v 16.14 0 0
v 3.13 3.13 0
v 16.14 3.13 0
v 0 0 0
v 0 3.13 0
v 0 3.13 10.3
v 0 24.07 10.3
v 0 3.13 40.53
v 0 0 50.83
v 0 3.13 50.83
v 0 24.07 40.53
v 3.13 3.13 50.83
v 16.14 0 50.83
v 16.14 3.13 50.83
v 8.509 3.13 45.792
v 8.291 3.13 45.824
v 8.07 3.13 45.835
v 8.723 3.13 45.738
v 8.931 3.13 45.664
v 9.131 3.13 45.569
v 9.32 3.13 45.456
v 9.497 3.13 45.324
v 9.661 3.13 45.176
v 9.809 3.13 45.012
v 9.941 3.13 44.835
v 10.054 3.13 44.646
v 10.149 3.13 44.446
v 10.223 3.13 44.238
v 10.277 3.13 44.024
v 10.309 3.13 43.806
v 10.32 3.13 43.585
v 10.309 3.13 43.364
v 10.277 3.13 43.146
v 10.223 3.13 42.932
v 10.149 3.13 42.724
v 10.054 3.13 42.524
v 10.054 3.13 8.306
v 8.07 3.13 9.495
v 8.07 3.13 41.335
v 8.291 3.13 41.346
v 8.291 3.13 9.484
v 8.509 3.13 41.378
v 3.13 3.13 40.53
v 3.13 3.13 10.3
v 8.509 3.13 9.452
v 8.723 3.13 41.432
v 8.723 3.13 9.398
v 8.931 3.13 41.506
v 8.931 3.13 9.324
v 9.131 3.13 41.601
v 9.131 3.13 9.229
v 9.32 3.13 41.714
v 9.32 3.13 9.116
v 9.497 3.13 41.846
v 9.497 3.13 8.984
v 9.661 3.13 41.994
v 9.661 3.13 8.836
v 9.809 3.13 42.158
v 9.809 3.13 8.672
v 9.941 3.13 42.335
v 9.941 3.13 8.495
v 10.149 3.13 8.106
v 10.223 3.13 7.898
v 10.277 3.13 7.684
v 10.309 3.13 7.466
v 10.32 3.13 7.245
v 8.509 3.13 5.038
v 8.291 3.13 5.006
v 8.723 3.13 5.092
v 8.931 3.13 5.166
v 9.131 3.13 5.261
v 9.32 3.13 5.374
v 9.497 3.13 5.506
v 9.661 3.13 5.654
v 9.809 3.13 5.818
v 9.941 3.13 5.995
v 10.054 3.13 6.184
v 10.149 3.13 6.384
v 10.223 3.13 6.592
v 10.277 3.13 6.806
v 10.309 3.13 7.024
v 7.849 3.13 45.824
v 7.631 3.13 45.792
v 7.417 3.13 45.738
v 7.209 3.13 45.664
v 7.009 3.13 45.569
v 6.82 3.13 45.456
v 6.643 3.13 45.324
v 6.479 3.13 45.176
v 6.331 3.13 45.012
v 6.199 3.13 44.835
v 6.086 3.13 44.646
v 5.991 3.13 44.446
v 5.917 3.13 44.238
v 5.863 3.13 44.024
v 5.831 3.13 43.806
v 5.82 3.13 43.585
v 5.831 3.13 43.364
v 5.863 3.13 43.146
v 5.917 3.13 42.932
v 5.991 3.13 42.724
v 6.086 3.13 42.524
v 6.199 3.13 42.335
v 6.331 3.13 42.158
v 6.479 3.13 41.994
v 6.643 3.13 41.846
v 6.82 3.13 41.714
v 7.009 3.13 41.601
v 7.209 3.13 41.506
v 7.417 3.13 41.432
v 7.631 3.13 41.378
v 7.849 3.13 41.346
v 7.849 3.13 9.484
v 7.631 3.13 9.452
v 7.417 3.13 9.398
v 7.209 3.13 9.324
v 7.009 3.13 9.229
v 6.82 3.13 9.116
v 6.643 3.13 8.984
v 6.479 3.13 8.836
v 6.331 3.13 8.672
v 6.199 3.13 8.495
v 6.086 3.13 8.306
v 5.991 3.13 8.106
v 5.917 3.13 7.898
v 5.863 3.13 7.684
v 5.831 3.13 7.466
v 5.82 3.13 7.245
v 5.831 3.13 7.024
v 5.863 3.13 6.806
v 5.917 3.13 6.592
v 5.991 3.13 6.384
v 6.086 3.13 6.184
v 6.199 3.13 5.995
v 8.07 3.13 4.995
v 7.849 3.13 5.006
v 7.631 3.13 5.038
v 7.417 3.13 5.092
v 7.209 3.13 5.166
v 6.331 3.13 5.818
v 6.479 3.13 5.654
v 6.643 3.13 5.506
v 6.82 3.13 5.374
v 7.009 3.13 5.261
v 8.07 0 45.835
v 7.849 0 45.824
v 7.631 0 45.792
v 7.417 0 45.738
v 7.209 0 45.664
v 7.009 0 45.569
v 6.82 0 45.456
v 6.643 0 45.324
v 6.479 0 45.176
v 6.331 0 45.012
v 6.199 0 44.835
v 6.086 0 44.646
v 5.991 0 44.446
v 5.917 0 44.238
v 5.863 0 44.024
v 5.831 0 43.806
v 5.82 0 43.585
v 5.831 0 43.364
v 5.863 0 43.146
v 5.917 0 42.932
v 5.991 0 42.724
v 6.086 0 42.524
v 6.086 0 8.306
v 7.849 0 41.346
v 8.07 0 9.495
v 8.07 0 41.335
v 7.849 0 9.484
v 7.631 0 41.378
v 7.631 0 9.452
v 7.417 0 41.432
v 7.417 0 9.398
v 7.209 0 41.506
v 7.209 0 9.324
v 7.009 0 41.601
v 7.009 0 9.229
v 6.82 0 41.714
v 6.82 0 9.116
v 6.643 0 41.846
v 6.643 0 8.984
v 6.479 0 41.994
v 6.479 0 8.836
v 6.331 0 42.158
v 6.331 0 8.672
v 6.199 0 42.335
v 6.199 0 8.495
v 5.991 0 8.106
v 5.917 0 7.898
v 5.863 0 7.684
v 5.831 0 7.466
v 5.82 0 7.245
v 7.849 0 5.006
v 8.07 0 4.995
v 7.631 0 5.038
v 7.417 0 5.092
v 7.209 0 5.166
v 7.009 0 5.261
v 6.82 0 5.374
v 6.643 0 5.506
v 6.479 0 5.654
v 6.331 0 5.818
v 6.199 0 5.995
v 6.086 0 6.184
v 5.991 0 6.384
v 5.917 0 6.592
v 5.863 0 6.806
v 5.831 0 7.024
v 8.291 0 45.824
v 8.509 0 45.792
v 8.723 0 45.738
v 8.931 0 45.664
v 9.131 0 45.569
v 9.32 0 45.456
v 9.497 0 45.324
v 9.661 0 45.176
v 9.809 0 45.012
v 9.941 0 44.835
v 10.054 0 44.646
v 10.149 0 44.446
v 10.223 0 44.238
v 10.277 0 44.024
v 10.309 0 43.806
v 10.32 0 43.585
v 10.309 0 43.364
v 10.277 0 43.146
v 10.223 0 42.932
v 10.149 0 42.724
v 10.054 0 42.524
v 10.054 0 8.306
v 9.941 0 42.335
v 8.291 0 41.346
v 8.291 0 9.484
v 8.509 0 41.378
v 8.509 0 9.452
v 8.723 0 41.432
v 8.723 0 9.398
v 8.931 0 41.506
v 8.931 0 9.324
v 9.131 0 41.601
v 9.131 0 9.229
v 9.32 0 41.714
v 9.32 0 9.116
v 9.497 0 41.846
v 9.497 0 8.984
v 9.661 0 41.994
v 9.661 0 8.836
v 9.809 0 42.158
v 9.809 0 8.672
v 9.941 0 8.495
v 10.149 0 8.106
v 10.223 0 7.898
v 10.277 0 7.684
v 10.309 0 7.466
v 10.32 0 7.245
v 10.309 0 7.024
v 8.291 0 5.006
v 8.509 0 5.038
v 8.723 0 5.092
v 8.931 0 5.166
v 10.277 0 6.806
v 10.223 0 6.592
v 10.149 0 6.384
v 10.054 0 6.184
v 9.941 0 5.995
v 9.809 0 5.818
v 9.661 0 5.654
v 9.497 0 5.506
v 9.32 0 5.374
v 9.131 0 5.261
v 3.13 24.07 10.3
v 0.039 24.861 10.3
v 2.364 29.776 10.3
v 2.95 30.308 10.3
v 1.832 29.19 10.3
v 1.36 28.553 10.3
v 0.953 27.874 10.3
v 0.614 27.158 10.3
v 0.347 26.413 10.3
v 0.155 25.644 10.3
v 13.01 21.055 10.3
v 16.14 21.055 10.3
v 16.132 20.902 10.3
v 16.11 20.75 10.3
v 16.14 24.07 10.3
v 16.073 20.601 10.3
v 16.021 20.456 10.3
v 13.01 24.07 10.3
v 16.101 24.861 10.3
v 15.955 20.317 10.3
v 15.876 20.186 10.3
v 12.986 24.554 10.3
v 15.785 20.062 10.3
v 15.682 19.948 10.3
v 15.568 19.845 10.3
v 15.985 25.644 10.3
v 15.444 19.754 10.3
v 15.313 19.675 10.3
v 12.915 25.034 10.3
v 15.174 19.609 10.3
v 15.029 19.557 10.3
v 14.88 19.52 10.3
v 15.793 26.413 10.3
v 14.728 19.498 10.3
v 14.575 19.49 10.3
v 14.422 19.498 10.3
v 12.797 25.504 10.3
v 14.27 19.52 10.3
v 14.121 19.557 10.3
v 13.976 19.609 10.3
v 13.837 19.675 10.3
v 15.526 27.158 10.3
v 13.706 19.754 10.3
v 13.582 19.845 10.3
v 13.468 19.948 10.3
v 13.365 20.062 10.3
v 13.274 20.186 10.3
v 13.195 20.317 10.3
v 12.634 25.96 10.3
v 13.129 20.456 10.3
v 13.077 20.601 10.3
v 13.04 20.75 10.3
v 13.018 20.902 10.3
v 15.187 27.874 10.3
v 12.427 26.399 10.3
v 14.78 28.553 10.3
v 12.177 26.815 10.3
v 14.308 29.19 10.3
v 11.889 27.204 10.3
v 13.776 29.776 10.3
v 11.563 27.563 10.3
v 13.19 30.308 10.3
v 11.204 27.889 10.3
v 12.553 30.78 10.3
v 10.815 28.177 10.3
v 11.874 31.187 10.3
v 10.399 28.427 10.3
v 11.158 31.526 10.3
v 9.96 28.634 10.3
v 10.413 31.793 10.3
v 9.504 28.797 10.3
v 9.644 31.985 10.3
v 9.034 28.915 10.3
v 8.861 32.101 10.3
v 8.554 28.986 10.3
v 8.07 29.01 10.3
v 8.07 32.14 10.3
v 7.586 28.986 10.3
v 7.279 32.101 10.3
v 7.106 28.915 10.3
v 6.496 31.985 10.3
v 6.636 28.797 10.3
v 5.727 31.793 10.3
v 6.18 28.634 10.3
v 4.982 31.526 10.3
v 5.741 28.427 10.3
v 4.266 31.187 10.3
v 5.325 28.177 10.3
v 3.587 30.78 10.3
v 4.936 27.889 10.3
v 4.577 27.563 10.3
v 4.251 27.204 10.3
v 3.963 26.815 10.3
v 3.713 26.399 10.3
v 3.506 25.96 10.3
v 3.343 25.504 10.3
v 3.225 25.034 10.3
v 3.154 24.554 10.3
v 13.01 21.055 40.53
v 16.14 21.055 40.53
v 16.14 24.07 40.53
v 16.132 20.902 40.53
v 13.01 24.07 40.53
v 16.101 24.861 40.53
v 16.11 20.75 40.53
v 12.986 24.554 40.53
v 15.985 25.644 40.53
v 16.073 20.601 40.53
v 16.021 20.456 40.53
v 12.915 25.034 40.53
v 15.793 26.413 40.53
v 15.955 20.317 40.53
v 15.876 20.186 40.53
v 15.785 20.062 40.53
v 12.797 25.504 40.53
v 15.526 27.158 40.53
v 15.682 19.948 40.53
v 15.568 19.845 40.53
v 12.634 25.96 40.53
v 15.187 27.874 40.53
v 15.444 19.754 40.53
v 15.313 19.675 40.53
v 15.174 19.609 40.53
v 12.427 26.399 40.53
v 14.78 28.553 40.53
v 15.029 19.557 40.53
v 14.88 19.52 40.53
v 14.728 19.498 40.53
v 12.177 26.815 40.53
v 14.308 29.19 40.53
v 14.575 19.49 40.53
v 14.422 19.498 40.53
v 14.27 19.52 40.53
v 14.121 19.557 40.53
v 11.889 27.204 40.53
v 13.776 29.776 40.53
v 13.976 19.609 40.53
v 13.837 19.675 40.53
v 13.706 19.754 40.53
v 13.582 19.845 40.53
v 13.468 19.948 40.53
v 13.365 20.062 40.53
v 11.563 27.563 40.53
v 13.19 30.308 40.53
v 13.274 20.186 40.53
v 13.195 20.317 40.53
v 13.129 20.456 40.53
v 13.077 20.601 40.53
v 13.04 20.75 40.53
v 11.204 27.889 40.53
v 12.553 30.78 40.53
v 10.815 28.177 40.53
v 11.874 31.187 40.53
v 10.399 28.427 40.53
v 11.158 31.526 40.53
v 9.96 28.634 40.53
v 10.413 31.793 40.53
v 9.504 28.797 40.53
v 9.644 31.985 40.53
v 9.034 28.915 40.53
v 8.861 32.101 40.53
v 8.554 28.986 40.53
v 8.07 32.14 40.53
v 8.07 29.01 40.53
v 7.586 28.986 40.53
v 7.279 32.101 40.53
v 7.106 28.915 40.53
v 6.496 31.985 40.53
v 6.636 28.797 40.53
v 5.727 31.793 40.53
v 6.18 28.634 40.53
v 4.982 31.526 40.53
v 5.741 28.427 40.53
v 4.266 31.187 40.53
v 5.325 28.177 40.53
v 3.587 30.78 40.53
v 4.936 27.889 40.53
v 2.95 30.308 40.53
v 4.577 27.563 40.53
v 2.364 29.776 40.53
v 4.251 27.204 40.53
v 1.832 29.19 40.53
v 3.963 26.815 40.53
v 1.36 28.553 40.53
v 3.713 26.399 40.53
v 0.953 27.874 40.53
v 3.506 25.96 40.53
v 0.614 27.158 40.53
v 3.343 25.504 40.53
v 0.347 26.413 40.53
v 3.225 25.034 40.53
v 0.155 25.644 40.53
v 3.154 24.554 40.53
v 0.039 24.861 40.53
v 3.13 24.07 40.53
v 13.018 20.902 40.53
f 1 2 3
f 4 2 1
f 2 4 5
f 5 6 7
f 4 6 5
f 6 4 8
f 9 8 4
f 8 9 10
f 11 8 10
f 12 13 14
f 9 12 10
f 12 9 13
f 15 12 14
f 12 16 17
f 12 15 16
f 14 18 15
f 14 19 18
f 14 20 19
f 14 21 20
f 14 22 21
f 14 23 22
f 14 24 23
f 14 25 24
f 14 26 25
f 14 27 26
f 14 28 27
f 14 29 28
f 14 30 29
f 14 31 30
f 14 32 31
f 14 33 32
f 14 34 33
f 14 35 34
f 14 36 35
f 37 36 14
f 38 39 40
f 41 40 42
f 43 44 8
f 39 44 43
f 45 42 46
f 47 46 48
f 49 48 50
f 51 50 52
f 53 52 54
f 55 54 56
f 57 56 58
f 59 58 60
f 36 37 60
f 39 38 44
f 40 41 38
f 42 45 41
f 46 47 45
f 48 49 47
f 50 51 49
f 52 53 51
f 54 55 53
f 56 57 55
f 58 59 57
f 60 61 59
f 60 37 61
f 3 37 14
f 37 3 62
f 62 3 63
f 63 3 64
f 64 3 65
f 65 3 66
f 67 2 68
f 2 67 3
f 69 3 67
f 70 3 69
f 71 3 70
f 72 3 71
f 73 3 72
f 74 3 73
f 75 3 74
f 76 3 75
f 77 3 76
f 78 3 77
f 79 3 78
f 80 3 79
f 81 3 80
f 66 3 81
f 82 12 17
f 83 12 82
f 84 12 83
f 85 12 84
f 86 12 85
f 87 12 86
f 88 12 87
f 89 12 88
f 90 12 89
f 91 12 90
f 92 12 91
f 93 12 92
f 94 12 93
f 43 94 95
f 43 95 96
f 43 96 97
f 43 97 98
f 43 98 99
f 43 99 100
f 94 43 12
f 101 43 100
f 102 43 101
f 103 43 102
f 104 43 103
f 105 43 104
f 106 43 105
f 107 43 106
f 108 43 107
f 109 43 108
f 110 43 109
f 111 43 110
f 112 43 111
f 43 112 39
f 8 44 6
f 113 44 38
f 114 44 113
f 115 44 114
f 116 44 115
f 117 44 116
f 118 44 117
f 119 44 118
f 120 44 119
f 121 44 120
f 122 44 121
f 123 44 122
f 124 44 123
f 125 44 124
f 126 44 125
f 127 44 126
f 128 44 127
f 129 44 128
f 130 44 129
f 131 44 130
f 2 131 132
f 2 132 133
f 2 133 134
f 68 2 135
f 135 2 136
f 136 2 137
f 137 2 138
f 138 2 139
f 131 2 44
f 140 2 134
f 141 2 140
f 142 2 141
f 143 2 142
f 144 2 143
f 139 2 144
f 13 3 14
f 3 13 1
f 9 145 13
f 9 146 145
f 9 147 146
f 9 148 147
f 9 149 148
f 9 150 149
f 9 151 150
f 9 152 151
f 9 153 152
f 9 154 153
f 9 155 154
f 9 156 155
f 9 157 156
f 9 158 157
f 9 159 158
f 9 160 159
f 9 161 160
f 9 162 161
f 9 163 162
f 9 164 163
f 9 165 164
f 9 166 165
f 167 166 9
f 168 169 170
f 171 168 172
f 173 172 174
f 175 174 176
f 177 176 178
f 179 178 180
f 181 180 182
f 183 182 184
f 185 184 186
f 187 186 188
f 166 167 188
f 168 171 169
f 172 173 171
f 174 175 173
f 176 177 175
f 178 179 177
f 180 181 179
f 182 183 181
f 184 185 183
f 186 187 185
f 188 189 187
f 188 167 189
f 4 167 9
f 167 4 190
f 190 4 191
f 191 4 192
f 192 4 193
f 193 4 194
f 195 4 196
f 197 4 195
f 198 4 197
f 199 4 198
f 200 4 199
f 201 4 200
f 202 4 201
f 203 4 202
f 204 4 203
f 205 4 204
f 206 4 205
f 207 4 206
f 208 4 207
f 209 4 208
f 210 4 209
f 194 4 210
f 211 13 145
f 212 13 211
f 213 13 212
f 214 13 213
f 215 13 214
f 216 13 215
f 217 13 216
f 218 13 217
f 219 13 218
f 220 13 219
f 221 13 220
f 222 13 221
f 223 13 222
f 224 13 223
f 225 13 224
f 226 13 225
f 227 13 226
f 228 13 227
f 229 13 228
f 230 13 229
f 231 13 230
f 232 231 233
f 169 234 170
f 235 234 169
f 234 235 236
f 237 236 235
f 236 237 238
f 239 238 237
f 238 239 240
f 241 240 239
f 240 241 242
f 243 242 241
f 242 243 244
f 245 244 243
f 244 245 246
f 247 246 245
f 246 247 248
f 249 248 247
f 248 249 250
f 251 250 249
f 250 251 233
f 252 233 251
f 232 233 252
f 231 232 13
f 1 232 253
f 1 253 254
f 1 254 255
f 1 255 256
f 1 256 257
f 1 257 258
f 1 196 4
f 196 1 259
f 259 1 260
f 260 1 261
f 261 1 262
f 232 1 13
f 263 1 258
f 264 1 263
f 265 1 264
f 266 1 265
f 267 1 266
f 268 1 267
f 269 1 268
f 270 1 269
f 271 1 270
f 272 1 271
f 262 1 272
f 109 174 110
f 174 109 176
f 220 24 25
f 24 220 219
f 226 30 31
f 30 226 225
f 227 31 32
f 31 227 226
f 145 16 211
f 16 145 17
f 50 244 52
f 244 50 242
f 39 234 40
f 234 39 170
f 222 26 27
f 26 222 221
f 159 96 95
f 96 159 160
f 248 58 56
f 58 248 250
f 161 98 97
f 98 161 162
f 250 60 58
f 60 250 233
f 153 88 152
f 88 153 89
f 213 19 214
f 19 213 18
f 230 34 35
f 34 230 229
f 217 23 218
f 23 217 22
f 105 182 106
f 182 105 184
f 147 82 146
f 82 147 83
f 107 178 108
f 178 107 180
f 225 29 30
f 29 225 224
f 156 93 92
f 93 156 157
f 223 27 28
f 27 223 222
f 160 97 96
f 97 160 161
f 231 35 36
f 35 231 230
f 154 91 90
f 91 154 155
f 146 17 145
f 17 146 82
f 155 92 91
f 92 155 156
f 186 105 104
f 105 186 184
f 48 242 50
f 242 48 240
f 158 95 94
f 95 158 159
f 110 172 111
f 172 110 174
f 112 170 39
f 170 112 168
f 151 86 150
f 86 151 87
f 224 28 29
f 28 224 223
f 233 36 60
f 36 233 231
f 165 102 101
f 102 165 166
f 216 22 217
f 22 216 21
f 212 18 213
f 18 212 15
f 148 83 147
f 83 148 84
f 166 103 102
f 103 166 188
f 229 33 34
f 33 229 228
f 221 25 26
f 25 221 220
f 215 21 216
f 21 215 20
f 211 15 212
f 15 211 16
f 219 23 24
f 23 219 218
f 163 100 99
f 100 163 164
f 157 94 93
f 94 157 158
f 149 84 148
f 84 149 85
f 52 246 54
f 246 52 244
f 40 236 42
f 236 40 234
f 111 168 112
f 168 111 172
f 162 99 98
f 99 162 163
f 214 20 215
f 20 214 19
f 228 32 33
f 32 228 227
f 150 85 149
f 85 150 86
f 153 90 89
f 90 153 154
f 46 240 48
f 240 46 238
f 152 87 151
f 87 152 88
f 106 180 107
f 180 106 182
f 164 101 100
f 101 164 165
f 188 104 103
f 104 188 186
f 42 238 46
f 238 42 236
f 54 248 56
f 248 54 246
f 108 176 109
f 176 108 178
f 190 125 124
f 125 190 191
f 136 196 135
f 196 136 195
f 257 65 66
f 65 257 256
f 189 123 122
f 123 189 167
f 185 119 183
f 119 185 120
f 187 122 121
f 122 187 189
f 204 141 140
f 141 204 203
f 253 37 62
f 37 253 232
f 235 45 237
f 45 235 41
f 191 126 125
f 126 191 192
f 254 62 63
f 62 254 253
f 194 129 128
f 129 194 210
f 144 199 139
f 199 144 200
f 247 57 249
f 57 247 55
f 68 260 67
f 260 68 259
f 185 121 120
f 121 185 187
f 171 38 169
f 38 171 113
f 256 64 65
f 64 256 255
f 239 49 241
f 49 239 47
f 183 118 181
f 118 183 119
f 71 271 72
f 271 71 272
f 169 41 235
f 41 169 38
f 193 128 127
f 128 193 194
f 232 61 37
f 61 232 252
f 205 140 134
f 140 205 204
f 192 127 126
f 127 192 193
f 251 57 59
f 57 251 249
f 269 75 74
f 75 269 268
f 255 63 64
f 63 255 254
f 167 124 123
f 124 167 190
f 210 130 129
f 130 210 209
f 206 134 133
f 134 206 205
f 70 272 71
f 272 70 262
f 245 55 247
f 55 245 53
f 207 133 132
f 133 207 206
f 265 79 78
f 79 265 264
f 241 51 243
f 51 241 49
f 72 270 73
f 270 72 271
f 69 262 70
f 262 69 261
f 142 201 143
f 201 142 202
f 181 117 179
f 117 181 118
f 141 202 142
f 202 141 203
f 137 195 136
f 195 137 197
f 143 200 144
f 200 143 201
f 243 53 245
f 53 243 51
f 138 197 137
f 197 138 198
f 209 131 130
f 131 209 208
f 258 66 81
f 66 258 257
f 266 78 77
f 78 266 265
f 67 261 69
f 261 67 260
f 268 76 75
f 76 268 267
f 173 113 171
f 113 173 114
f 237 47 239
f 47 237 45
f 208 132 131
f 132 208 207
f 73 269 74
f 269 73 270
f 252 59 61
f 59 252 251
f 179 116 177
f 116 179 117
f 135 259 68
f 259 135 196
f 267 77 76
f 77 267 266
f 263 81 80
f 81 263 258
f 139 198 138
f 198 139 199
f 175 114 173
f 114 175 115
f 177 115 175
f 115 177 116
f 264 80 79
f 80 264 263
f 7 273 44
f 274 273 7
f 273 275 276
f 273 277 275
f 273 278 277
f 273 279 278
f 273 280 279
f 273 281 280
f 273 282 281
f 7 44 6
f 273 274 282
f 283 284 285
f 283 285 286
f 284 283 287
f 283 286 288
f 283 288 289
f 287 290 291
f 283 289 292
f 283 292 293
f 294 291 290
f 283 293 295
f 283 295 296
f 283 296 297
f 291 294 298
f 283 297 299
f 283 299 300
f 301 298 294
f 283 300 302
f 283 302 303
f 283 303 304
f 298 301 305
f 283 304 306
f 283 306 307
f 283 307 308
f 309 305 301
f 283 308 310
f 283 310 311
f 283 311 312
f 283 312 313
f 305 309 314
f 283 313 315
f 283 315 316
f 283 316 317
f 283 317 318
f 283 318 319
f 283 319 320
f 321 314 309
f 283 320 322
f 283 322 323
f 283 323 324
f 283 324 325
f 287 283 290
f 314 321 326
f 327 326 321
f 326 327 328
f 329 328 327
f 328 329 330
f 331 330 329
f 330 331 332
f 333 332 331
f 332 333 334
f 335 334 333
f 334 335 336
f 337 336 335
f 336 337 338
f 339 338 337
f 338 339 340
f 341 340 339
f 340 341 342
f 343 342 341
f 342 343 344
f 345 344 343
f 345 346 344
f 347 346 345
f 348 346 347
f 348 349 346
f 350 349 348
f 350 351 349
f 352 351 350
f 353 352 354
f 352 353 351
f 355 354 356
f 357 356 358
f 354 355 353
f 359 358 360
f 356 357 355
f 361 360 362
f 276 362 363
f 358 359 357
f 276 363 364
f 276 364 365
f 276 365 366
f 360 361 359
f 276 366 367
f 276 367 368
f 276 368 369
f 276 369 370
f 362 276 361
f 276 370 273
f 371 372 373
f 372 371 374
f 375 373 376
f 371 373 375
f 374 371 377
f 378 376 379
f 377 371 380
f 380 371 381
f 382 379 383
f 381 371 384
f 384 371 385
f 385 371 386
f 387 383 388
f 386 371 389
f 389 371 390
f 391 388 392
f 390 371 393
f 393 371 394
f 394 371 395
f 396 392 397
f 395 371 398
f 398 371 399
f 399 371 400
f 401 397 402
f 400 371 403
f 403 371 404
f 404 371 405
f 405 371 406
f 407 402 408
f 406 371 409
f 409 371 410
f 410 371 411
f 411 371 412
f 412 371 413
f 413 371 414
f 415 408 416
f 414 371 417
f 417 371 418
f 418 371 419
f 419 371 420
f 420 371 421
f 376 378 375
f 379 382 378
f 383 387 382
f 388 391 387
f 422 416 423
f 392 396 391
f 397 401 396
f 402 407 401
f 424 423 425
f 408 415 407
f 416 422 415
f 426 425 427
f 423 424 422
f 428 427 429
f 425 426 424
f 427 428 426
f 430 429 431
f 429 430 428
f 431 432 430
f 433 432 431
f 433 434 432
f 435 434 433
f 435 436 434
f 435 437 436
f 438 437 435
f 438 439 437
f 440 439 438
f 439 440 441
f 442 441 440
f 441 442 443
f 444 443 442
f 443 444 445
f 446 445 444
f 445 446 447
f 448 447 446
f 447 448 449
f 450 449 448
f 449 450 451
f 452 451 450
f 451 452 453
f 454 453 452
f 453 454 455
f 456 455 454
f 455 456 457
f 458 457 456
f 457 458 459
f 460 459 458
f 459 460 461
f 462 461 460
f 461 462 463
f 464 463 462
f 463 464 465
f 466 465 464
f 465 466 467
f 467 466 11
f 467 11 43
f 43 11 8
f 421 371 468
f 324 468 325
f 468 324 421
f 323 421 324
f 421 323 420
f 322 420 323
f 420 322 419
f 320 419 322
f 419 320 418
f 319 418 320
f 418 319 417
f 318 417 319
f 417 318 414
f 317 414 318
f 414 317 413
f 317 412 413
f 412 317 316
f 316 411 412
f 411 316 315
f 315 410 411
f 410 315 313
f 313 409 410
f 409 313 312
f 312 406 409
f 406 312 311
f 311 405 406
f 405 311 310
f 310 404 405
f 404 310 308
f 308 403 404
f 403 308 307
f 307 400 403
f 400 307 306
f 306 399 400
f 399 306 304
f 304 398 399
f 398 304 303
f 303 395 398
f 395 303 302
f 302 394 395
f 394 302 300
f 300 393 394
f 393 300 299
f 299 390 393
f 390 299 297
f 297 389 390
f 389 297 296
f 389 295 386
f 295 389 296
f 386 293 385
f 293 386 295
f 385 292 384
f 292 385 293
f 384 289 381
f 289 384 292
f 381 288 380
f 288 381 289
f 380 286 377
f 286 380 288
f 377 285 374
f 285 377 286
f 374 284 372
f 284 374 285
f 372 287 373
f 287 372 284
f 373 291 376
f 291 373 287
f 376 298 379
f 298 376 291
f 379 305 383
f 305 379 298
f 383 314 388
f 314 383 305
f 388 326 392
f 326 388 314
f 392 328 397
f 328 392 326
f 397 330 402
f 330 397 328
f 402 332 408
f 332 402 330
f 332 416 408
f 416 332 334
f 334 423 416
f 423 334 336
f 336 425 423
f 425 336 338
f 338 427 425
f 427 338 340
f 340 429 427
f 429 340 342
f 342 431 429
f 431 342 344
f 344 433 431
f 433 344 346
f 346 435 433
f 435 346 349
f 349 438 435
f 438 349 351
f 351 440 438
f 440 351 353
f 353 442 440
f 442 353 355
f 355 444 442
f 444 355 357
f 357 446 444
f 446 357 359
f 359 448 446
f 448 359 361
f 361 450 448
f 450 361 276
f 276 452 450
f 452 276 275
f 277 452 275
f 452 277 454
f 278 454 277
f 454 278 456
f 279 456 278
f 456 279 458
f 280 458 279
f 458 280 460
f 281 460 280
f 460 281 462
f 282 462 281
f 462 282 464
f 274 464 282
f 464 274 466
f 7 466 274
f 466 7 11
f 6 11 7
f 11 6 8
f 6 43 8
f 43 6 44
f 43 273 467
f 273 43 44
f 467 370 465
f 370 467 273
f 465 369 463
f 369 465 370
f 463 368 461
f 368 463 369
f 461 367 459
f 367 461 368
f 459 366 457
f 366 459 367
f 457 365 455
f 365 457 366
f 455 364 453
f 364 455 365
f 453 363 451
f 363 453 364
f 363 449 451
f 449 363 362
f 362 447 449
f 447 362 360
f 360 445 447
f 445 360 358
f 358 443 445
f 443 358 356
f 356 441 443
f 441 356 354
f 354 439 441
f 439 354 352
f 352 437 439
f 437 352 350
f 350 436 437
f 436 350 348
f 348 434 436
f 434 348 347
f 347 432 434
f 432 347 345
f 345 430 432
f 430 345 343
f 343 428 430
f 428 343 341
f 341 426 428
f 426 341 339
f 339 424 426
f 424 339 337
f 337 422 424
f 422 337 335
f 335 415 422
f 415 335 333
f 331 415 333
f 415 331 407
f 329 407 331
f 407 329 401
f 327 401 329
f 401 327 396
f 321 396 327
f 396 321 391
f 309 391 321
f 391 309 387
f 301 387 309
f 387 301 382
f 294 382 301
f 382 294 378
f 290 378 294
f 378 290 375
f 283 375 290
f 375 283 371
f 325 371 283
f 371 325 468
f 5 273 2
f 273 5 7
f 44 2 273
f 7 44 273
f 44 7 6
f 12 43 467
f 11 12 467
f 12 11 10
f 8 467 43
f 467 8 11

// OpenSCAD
$height = 50.83;
$insertion_gap = 16.36;
$hook_diameter = 9.88;
$hook_depth = 14.46; // diameter + extra_hook
$hook_height = 30.23;
$end_to_end = 35.79; // from the wall to the top of the hook
$screw_spacing = 31.84; // closest edge-to-edge, not center-to-center
$screw_diameter = 4.5;

$thickness = 3.13;

// Render quality
$fn = $preview ? 32 : 64;

$epsilon = 0.01;


// anchored at 0,0,0; hook in the positive XY direction; linear_extrude in the Z direction
module hook_and_stem(
    height = 100,
    radius = 10,
    thickness = 1,
    extra_hook = 15,
    extra_stem = 30
) {
    translate([radius+thickness, extra_stem+extra_hook, 0])
    linear_extrude(height)
    union() {
        // hook
        difference() {
            circle(r=radius + thickness);
            circle(r=radius);
            translate([0, -(radius+thickness), 0])
            square(2*(radius+thickness), center=true);
        };
        
        // extra_hook without rounding
        translate([
            (radius+thickness/2),
            -((extra_hook-thickness/2)/2),
            0
        ])
        square([thickness, extra_hook-thickness/2], center=true);
        
        // extra_hook rounding
        translate([
            (radius+thickness/2),
            -((extra_hook-thickness/2)),
            0
        ])
        circle(d=thickness);
        
        // extra_hook on stem
        translate([
            -(radius+thickness/2),
            -(extra_hook/2),
            0
        ])
        square([thickness, extra_hook], center=true);
        
        // stem
        translate([
            -(radius+thickness/2),
            -(extra_stem/2+extra_hook),
            0
        ])
        square([thickness, extra_stem], center=true);
    }
}

module screwplate (
    thickness,
    height,
    hole_radius,
    hole_separation,
    hook_size
) {
    difference() {
        linear_extrude(height)
        square([hook_size, thickness]);
        
        // screw holes
        translate([hook_size/2, -$epsilon, height/2 + hole_separation/2])
        rotate([-90,0,0])
        linear_extrude(thickness+2*$epsilon)
        circle(hole_radius);
        
        translate([hook_size/2, -$epsilon, height/2 - hole_separation/2])
        rotate([-90,0,0])
        linear_extrude(thickness+2*$epsilon)
        circle(hole_radius);
    }
}


union() {
    screwplate(
        thickness=$thickness,
        height=$height,
        hole_radius=$screw_diameter/2,
        hole_separation=$screw_spacing+$screw_diameter,
        hook_size=$hook_diameter + 2*$thickness
    );
    
    translate([
        0,
        $thickness,
        $height/2-$hook_height/2
    ])
    hook_and_stem(
        height=$hook_height,
        radius=$hook_diameter/2,
        thickness=$thickness,
        extra_hook=$hook_depth - $hook_diameter,
        extra_stem=$insertion_gap
    );
    
    // top support
    translate([0,$thickness,0])
    rotate([-90,180,-90])
    linear_extrude($thickness)
    polygon(points=[
        [0,0],
        [0,($height/2-$hook_height/2)],
        [($hook_depth - $hook_diameter + $insertion_gap),($height/2-$hook_height/2)]
    ]);
    
    // bottom support
    translate([
        $thickness,
        $thickness,
        $height
    ])
    rotate([90,180,-90])
    linear_extrude($thickness)
    polygon(points=[
        [0,0],
        [0,($height/2-$hook_height/2)],
        [($hook_depth - $hook_diameter + $insertion_gap),($height/2-$hook_height/2)]
    ]);
};
